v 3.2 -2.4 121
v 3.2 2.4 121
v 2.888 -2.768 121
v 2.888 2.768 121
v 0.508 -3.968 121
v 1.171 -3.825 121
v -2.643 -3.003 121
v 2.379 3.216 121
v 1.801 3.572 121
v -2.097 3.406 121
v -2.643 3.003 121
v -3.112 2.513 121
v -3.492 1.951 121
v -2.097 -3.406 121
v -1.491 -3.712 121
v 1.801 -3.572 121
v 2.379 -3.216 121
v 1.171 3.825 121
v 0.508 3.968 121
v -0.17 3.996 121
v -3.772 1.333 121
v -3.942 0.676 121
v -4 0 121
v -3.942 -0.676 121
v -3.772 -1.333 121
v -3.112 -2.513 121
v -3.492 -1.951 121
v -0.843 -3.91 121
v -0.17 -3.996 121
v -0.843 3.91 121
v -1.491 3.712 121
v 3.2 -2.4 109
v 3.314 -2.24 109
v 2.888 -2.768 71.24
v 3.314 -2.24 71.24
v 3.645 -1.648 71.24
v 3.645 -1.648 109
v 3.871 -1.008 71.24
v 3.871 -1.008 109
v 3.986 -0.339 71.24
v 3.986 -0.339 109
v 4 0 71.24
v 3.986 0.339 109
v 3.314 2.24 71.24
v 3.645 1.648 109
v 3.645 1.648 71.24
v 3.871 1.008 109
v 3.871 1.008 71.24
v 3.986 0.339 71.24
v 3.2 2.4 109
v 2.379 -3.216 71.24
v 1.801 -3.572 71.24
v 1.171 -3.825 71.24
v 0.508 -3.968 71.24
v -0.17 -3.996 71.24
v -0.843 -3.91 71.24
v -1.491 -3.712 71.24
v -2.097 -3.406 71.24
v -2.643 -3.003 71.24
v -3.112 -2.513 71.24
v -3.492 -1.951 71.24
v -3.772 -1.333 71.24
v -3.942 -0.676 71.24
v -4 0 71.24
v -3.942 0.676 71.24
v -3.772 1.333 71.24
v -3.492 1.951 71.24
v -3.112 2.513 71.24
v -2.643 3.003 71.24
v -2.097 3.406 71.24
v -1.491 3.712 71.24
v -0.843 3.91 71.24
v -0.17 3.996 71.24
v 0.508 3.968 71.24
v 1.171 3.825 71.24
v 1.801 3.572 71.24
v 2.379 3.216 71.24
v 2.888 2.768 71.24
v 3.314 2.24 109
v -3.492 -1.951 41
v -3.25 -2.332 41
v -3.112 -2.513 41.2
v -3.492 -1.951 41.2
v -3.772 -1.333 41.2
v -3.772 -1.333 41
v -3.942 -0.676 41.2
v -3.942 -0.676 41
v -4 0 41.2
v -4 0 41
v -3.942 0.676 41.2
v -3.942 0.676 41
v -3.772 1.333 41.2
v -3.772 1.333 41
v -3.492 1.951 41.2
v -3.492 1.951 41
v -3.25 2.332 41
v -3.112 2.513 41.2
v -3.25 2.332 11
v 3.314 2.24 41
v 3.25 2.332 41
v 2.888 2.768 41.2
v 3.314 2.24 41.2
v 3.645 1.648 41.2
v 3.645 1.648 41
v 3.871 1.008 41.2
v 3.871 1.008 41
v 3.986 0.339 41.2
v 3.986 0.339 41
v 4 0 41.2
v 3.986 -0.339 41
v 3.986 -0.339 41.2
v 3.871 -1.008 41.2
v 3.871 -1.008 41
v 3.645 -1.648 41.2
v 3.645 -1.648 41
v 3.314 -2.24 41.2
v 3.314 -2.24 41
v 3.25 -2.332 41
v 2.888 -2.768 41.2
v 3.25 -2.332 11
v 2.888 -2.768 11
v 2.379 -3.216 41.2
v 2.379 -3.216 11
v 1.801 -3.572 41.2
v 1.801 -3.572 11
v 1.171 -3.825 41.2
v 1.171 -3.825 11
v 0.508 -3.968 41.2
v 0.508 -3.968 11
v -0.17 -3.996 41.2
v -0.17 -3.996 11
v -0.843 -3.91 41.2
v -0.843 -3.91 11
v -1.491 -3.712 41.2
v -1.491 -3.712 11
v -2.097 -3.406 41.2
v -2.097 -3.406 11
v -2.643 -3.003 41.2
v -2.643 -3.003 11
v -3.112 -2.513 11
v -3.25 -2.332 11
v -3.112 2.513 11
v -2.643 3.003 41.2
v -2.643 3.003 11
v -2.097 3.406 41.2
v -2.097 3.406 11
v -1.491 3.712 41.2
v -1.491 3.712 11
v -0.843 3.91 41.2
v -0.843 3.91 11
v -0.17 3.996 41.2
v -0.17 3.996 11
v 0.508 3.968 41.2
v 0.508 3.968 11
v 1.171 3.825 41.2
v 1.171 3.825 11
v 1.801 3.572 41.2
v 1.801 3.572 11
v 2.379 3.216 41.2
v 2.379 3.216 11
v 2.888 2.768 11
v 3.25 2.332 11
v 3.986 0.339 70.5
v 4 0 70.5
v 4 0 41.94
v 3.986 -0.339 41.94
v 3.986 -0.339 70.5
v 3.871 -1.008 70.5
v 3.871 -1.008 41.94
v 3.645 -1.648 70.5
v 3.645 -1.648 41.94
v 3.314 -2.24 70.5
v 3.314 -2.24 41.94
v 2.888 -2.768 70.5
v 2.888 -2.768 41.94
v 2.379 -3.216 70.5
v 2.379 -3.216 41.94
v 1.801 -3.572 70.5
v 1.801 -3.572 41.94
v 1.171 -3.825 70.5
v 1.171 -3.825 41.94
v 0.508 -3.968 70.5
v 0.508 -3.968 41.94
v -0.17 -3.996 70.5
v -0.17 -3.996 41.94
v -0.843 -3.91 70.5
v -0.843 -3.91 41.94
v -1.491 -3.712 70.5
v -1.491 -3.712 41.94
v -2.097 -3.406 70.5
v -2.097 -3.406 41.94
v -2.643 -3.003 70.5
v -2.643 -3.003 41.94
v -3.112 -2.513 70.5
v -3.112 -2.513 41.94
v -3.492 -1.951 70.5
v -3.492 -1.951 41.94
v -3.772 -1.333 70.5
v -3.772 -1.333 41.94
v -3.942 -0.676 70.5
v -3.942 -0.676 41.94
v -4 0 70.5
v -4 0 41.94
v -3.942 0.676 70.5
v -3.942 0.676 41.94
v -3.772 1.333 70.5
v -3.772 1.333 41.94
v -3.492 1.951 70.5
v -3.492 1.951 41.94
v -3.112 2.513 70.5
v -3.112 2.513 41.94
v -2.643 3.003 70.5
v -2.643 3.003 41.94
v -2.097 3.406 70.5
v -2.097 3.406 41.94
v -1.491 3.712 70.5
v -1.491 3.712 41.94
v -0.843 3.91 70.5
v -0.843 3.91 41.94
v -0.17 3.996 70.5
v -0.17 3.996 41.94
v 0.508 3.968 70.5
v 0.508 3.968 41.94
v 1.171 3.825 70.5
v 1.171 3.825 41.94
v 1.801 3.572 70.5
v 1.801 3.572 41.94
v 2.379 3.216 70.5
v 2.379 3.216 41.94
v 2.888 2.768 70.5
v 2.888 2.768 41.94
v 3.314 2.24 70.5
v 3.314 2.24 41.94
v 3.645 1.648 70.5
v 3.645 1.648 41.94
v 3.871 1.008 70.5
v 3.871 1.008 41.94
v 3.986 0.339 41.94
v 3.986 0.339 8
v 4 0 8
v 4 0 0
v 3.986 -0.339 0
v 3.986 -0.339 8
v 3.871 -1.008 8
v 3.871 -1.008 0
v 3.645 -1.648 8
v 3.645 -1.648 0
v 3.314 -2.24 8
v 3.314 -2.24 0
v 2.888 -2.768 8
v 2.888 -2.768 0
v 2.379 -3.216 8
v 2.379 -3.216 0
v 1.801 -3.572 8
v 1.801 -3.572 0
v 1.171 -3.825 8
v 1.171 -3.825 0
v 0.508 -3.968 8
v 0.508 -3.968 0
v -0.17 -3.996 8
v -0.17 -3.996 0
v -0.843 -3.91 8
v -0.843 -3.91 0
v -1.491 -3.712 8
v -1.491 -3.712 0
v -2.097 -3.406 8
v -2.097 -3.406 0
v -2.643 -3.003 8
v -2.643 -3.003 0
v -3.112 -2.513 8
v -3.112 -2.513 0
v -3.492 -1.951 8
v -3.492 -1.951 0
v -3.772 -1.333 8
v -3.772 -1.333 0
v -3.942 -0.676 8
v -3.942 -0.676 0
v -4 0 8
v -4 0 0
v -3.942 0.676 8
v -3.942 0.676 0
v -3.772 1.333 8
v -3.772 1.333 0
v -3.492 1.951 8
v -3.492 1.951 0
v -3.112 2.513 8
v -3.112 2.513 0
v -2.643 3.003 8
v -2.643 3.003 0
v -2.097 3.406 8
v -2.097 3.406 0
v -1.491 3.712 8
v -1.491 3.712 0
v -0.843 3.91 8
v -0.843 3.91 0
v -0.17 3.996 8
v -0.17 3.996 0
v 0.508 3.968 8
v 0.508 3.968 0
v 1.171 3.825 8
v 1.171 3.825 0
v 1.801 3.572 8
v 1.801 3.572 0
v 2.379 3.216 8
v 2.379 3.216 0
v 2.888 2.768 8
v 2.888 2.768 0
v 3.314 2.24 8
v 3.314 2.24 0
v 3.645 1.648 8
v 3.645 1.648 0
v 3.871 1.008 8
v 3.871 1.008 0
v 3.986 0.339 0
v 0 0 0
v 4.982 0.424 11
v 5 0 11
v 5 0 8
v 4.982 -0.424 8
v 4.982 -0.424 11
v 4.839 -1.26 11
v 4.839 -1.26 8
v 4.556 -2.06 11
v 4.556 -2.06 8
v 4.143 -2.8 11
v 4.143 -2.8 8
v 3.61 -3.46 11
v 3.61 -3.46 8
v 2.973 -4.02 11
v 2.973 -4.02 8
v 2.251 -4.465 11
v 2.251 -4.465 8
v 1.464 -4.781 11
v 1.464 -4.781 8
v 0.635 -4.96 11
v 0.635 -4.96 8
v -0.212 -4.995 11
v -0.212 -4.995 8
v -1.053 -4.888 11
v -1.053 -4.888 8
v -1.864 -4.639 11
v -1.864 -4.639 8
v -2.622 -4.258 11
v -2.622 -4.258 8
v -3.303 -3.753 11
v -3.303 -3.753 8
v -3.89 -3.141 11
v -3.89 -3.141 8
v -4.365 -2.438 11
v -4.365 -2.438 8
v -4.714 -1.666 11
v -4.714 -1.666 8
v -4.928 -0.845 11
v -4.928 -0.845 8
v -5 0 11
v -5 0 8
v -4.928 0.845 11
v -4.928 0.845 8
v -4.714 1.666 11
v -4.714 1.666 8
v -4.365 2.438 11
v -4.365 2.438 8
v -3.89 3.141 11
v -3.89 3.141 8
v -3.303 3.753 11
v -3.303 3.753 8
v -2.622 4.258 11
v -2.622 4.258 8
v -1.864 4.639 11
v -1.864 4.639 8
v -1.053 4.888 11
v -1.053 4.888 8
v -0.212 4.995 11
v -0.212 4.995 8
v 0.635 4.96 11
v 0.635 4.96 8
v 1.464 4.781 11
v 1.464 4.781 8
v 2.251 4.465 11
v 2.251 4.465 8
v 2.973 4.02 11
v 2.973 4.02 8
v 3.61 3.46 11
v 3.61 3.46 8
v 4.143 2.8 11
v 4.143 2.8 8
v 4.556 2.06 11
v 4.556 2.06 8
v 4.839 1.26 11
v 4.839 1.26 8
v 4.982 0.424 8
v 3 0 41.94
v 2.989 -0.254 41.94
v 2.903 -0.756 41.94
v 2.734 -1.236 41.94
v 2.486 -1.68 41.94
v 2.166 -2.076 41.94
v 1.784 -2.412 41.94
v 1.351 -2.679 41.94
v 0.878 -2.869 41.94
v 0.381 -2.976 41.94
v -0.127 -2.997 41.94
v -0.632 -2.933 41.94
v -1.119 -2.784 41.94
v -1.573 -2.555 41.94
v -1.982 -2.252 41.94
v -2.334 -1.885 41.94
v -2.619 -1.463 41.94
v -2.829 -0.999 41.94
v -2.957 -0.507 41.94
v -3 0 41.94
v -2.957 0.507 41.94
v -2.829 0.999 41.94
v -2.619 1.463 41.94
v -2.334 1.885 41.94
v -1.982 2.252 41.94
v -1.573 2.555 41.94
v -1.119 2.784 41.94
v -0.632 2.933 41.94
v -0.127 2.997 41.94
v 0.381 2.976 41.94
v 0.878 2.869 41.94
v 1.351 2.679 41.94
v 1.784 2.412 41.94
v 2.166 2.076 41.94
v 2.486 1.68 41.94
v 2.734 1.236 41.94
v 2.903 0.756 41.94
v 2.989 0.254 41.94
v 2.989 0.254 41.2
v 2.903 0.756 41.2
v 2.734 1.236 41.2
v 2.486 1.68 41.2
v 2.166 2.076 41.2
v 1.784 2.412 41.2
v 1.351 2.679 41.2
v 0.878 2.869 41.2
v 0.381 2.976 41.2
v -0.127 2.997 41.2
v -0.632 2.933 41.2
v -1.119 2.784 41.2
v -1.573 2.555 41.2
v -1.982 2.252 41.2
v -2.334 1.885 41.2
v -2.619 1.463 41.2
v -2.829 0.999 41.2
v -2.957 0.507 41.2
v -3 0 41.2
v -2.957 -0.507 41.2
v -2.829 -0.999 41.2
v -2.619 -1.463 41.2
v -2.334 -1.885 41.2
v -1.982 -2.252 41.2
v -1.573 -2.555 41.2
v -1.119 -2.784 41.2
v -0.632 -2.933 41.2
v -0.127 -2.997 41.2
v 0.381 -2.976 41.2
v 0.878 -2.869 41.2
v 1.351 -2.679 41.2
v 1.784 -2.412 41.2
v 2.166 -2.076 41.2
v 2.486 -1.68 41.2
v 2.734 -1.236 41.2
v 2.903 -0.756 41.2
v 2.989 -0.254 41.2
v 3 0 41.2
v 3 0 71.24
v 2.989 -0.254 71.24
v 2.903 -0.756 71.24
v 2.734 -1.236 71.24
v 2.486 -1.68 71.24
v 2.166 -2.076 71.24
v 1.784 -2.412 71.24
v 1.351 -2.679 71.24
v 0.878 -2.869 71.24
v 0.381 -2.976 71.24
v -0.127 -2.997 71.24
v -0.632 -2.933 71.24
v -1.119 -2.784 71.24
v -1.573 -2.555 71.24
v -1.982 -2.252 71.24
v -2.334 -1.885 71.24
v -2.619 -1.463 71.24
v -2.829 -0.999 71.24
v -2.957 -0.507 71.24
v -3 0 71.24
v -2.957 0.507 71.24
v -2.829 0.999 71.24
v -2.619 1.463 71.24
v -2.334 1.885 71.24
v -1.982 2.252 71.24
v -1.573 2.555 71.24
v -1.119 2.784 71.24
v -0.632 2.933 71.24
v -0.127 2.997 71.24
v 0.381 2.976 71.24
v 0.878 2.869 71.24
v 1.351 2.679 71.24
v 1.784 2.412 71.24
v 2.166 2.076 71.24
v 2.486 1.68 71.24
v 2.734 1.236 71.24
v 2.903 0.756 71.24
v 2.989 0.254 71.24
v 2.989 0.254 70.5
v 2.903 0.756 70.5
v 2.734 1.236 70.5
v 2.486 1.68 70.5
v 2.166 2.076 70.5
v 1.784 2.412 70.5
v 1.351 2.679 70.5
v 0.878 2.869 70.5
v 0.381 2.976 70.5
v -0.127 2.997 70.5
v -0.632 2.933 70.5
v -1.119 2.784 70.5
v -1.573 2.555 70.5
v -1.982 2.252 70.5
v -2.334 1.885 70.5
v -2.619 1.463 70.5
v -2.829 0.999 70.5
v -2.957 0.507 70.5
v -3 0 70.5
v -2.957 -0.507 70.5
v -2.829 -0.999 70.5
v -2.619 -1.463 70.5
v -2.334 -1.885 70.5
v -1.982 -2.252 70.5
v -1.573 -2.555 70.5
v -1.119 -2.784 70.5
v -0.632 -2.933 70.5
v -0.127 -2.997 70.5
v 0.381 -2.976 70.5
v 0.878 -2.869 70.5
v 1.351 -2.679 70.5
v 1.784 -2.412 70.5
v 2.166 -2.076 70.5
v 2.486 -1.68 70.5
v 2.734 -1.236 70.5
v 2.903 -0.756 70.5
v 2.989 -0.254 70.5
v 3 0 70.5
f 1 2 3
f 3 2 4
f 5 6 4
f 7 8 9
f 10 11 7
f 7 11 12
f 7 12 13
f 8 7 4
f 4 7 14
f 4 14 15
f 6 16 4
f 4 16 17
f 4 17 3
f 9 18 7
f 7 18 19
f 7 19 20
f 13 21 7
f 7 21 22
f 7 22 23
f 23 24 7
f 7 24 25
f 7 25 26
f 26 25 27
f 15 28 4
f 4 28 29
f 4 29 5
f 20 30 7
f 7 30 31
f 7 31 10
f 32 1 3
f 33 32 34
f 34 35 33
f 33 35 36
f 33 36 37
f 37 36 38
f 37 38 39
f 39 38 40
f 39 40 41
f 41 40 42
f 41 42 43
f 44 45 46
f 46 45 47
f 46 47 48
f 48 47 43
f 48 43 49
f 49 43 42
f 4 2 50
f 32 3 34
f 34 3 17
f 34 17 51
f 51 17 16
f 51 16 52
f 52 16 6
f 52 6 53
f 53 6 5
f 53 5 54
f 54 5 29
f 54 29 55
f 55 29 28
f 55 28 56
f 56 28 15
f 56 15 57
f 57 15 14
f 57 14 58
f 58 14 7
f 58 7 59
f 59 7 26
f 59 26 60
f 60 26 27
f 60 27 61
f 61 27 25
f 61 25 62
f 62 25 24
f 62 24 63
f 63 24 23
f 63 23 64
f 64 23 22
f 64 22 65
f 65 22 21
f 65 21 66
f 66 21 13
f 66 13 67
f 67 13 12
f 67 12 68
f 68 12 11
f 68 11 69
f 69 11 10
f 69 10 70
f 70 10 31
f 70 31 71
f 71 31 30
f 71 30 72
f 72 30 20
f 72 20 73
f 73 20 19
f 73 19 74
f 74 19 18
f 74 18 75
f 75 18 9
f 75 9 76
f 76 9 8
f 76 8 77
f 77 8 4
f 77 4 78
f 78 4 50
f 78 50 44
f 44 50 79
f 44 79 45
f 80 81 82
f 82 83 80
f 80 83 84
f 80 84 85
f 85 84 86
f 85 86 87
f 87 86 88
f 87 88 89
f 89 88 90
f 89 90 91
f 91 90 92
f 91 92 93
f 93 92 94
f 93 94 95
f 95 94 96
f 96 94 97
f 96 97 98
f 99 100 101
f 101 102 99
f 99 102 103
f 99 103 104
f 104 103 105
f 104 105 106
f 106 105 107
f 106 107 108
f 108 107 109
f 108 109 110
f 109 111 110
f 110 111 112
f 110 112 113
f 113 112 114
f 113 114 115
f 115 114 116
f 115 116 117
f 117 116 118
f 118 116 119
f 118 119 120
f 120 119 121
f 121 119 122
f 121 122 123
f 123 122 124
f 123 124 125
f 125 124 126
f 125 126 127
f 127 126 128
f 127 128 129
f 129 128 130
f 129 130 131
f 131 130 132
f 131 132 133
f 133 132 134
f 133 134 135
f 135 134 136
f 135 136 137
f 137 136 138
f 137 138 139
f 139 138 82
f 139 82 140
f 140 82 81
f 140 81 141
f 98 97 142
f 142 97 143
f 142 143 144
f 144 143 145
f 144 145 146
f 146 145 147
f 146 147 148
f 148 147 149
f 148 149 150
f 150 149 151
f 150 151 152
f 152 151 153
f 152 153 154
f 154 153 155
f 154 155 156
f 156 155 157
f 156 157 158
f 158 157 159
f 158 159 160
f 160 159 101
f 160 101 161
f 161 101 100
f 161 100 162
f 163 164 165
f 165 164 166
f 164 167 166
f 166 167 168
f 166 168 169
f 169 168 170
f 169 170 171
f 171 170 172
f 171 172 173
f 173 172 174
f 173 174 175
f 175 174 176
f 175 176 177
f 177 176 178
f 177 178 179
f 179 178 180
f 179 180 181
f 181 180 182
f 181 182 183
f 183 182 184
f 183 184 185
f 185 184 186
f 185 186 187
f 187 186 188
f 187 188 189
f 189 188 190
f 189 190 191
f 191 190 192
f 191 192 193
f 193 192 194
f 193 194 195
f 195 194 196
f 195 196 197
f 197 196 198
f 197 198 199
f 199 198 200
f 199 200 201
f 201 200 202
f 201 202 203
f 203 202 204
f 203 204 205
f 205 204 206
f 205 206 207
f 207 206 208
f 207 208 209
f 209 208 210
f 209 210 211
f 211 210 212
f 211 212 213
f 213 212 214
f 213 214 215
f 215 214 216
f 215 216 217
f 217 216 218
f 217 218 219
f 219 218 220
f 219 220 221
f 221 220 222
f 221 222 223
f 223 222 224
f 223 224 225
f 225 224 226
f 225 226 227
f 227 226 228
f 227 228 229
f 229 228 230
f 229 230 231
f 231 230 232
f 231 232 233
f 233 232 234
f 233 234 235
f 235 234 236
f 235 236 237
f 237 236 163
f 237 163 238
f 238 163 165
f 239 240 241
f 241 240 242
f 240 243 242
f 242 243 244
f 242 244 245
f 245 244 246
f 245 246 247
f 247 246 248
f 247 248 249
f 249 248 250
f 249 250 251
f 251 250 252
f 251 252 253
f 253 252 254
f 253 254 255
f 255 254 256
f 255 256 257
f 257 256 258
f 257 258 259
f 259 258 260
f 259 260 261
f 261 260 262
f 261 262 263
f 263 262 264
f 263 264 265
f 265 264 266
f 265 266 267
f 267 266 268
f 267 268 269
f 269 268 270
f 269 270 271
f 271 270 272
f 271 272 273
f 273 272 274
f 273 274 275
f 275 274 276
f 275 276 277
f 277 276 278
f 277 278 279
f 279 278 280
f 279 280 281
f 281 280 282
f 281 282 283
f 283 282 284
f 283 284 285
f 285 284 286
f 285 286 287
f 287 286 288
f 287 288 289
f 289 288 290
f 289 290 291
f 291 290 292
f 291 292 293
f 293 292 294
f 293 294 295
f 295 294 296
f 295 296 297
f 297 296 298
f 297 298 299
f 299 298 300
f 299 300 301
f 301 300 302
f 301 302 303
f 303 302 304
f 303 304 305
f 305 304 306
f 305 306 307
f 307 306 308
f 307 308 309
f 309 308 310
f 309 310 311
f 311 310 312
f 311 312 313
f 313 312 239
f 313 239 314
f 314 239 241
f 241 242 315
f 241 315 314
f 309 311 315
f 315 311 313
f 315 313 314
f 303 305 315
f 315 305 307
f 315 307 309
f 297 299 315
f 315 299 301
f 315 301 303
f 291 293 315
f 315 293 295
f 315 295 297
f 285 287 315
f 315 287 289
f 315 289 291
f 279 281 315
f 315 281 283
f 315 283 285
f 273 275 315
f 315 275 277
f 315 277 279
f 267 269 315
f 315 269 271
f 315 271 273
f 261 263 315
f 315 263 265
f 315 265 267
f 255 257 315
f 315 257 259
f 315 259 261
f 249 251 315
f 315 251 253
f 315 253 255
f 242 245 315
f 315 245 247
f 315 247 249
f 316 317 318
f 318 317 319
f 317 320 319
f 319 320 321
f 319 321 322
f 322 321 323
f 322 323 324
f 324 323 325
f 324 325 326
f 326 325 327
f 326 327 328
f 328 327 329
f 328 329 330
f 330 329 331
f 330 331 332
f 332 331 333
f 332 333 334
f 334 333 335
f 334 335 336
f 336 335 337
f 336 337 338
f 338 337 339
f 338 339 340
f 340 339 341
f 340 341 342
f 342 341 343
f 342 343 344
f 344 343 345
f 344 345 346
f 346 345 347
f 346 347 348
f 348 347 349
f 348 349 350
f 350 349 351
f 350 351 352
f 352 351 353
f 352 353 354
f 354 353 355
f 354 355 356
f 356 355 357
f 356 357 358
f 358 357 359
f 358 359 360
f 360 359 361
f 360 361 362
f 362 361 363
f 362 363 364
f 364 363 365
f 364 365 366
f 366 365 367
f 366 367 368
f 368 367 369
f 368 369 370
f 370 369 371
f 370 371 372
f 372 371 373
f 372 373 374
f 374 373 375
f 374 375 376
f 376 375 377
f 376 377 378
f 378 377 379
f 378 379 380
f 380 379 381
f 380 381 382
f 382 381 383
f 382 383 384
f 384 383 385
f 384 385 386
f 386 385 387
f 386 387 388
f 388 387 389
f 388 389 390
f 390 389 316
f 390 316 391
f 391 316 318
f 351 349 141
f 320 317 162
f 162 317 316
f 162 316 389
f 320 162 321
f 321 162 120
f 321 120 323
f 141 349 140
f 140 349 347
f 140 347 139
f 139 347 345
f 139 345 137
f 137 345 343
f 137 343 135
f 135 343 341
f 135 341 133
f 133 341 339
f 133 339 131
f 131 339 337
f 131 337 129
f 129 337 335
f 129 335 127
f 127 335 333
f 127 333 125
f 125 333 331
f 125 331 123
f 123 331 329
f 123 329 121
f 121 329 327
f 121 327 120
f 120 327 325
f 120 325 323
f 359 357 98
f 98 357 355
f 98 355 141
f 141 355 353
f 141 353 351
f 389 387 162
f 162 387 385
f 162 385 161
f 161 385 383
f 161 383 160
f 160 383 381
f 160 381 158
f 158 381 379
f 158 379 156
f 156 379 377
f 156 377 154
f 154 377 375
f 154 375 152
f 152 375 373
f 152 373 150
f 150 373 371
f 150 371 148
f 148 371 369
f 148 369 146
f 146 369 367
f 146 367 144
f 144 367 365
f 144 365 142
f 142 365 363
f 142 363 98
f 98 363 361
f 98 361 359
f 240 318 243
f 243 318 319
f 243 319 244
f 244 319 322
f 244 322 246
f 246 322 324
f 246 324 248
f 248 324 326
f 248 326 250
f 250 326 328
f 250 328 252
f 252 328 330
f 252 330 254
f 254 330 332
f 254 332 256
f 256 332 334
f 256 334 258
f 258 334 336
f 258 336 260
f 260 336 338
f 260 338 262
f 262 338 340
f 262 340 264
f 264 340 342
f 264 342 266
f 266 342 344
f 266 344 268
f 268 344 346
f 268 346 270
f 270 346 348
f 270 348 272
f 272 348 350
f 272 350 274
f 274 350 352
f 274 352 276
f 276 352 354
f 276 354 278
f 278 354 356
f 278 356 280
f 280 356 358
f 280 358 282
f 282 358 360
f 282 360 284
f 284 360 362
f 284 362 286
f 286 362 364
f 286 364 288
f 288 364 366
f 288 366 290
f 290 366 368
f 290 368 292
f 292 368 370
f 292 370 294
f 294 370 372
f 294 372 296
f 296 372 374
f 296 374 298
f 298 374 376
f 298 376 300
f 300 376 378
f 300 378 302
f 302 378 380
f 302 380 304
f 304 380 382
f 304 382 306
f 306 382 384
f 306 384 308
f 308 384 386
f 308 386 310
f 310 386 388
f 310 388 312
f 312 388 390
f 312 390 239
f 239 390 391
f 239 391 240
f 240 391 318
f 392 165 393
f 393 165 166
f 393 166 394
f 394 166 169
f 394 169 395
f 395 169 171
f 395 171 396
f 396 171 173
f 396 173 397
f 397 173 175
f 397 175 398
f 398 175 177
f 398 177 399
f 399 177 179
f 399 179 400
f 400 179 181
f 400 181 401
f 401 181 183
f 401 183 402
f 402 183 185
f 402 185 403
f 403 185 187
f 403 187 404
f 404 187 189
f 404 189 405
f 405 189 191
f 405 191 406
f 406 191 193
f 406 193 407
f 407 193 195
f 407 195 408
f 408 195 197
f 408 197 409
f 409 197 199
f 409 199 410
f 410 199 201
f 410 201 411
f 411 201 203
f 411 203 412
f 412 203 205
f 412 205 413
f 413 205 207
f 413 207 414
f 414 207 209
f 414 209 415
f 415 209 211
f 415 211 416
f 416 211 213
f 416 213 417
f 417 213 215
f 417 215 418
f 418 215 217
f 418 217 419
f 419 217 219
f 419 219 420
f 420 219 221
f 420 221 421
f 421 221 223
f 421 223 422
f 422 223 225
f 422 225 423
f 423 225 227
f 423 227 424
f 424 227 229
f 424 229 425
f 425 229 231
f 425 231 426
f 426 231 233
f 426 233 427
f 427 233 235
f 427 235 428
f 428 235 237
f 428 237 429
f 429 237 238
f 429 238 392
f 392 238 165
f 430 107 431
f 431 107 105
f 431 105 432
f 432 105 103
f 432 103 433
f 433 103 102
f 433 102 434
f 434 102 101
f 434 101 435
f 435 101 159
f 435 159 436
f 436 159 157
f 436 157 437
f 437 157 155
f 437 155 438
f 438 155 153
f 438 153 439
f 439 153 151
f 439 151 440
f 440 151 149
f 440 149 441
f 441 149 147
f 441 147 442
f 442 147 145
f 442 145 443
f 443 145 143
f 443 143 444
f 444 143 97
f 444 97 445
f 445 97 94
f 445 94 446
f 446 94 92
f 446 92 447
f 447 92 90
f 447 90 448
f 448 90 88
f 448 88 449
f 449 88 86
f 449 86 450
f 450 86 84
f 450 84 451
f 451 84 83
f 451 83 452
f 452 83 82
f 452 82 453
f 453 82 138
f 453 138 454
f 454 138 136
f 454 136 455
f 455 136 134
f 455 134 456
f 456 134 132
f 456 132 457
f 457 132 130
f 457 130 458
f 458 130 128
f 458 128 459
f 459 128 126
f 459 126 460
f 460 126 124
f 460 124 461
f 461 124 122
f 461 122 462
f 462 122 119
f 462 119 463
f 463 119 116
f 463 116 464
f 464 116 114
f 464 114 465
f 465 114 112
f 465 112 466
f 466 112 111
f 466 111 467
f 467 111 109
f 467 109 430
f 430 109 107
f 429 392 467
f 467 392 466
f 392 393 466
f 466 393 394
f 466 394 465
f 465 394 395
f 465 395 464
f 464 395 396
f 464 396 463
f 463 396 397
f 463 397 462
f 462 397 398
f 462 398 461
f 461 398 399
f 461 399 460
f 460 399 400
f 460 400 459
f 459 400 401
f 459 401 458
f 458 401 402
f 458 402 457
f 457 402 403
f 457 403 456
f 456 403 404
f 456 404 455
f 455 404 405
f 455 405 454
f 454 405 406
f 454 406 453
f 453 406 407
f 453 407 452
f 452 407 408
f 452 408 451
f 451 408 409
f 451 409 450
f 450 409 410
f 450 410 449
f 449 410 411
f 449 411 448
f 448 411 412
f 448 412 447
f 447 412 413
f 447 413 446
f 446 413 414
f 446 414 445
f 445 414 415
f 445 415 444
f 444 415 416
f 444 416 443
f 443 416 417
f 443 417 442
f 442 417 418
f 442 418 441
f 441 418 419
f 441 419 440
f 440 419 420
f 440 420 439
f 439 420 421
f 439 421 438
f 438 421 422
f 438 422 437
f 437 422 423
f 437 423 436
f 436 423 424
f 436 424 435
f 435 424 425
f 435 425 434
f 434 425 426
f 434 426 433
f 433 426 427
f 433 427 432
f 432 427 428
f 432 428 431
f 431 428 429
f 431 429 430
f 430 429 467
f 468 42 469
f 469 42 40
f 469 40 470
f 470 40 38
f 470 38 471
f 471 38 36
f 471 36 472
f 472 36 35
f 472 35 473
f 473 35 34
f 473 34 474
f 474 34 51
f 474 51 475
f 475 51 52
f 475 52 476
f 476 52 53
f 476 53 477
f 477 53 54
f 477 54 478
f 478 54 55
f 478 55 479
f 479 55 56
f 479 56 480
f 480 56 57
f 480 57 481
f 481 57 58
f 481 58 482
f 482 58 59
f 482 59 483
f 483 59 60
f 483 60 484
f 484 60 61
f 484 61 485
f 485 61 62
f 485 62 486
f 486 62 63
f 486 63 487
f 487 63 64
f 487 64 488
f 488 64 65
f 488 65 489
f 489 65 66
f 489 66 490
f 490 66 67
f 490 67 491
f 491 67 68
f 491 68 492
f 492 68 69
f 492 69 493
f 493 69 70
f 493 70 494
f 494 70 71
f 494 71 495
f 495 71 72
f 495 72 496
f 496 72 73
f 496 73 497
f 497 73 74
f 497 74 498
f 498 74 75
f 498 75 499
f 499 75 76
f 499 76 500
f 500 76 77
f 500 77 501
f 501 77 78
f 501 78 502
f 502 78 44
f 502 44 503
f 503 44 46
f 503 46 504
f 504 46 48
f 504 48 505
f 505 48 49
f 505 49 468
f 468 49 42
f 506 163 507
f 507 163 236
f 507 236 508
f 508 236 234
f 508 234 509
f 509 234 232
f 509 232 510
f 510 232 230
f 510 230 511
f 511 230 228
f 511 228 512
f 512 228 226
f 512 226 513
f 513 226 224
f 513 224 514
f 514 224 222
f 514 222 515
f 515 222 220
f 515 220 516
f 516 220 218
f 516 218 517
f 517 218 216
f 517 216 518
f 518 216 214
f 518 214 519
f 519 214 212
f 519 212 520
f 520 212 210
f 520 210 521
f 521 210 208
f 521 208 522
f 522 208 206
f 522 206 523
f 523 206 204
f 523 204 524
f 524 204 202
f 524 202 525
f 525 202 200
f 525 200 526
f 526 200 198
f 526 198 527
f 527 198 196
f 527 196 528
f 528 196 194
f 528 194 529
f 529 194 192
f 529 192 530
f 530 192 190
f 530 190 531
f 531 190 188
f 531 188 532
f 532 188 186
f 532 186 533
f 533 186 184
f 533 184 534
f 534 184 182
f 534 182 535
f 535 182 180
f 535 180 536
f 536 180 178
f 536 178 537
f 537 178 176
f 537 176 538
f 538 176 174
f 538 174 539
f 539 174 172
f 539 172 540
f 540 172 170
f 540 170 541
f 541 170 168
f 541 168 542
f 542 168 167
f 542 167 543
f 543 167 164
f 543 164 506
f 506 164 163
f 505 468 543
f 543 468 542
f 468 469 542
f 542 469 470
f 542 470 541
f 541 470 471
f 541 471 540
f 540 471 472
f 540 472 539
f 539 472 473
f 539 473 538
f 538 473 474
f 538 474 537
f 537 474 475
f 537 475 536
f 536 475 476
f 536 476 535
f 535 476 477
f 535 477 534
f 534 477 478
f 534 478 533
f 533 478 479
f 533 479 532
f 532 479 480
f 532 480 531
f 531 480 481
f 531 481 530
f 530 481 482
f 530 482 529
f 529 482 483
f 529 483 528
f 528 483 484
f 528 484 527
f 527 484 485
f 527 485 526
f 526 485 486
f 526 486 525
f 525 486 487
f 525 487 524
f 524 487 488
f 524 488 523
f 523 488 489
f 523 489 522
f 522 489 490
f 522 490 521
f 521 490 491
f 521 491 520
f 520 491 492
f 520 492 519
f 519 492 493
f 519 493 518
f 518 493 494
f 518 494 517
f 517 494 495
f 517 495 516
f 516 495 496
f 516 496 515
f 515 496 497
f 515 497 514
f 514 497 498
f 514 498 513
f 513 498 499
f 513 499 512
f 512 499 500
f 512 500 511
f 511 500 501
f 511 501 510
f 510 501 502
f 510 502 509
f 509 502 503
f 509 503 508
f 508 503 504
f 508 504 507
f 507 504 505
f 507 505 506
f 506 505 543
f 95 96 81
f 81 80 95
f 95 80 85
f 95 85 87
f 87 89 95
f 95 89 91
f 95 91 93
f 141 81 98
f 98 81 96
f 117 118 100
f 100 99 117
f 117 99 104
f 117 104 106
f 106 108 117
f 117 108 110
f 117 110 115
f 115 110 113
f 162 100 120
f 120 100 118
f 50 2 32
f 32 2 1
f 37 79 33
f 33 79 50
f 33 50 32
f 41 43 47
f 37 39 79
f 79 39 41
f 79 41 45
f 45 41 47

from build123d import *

# Parameters (mm, degrees)
SKETCH1_R           = 4
LOWER_SEAT_DEPTH    = 8
SKETCH2_R           = 5
COLLAR_DEPTH        = 3
SKETCH3_R           = 4
UPPER_DEPTH         = 110
SKETCH4_R           = 5
SKETCH4_R_2         = 3
ECLIP_GROOVE1_DEPTH = 0.74
SKETCH5_R           = 5
SKETCH5_R_2         = 3
ECLIP_GROOVE2_DEPTH = 0.74
SKETCH6_W           = 3
SKETCH6_H           = 10
BURR_FLATS_DEPTH    = 30
SKETCH7_W           = 3
SKETCH7_H           = 10
CRANK_FLAT_DEPTH    = 12


with BuildPart() as part:
    # Sketch1 → Lower_seat (new body)
    with BuildSketch(Plane.XY):
        Circle(SKETCH1_R)
    extrude(amount=LOWER_SEAT_DEPTH)

    # Sketch2 → Collar (add)
    with BuildSketch(Plane.XY.offset(8)):
        Circle(SKETCH2_R)
    extrude(amount=COLLAR_DEPTH)

    # Sketch3 → Upper (add)
    with BuildSketch(Plane.XY.offset(11)):
        Circle(SKETCH3_R)
    extrude(amount=UPPER_DEPTH)

    # Sketch4 → Eclip_groove1 (cut)
    with BuildSketch(Plane.XY.offset(41.2)):
        Circle(SKETCH4_R)
        Circle(SKETCH4_R_2, mode=Mode.SUBTRACT)
    extrude(amount=ECLIP_GROOVE1_DEPTH, mode=Mode.SUBTRACT)

    # Sketch5 → Eclip_groove2 (cut)
    with BuildSketch(Plane.XY.offset(70.5)):
        Circle(SKETCH5_R)
        Circle(SKETCH5_R_2, mode=Mode.SUBTRACT)
    extrude(amount=ECLIP_GROOVE2_DEPTH, mode=Mode.SUBTRACT)

    # Sketch6 → Burr_flats (cut)
    with BuildSketch(Plane.XY.offset(11)):
        with Locations((4.75, 0)):
            Rectangle(SKETCH6_W, SKETCH6_H)
        with Locations((-4.75, 0)):
            Rectangle(SKETCH6_W, SKETCH6_H)
    extrude(amount=BURR_FLATS_DEPTH, mode=Mode.SUBTRACT)

    # Sketch7 → Crank_flat (cut)
    with BuildSketch(Plane.XY.offset(109)):
        with Locations((4.7, 0)):
            Rectangle(SKETCH7_W, SKETCH7_H)
    extrude(amount=CRANK_FLAT_DEPTH, mode=Mode.SUBTRACT)


solid = part.part
